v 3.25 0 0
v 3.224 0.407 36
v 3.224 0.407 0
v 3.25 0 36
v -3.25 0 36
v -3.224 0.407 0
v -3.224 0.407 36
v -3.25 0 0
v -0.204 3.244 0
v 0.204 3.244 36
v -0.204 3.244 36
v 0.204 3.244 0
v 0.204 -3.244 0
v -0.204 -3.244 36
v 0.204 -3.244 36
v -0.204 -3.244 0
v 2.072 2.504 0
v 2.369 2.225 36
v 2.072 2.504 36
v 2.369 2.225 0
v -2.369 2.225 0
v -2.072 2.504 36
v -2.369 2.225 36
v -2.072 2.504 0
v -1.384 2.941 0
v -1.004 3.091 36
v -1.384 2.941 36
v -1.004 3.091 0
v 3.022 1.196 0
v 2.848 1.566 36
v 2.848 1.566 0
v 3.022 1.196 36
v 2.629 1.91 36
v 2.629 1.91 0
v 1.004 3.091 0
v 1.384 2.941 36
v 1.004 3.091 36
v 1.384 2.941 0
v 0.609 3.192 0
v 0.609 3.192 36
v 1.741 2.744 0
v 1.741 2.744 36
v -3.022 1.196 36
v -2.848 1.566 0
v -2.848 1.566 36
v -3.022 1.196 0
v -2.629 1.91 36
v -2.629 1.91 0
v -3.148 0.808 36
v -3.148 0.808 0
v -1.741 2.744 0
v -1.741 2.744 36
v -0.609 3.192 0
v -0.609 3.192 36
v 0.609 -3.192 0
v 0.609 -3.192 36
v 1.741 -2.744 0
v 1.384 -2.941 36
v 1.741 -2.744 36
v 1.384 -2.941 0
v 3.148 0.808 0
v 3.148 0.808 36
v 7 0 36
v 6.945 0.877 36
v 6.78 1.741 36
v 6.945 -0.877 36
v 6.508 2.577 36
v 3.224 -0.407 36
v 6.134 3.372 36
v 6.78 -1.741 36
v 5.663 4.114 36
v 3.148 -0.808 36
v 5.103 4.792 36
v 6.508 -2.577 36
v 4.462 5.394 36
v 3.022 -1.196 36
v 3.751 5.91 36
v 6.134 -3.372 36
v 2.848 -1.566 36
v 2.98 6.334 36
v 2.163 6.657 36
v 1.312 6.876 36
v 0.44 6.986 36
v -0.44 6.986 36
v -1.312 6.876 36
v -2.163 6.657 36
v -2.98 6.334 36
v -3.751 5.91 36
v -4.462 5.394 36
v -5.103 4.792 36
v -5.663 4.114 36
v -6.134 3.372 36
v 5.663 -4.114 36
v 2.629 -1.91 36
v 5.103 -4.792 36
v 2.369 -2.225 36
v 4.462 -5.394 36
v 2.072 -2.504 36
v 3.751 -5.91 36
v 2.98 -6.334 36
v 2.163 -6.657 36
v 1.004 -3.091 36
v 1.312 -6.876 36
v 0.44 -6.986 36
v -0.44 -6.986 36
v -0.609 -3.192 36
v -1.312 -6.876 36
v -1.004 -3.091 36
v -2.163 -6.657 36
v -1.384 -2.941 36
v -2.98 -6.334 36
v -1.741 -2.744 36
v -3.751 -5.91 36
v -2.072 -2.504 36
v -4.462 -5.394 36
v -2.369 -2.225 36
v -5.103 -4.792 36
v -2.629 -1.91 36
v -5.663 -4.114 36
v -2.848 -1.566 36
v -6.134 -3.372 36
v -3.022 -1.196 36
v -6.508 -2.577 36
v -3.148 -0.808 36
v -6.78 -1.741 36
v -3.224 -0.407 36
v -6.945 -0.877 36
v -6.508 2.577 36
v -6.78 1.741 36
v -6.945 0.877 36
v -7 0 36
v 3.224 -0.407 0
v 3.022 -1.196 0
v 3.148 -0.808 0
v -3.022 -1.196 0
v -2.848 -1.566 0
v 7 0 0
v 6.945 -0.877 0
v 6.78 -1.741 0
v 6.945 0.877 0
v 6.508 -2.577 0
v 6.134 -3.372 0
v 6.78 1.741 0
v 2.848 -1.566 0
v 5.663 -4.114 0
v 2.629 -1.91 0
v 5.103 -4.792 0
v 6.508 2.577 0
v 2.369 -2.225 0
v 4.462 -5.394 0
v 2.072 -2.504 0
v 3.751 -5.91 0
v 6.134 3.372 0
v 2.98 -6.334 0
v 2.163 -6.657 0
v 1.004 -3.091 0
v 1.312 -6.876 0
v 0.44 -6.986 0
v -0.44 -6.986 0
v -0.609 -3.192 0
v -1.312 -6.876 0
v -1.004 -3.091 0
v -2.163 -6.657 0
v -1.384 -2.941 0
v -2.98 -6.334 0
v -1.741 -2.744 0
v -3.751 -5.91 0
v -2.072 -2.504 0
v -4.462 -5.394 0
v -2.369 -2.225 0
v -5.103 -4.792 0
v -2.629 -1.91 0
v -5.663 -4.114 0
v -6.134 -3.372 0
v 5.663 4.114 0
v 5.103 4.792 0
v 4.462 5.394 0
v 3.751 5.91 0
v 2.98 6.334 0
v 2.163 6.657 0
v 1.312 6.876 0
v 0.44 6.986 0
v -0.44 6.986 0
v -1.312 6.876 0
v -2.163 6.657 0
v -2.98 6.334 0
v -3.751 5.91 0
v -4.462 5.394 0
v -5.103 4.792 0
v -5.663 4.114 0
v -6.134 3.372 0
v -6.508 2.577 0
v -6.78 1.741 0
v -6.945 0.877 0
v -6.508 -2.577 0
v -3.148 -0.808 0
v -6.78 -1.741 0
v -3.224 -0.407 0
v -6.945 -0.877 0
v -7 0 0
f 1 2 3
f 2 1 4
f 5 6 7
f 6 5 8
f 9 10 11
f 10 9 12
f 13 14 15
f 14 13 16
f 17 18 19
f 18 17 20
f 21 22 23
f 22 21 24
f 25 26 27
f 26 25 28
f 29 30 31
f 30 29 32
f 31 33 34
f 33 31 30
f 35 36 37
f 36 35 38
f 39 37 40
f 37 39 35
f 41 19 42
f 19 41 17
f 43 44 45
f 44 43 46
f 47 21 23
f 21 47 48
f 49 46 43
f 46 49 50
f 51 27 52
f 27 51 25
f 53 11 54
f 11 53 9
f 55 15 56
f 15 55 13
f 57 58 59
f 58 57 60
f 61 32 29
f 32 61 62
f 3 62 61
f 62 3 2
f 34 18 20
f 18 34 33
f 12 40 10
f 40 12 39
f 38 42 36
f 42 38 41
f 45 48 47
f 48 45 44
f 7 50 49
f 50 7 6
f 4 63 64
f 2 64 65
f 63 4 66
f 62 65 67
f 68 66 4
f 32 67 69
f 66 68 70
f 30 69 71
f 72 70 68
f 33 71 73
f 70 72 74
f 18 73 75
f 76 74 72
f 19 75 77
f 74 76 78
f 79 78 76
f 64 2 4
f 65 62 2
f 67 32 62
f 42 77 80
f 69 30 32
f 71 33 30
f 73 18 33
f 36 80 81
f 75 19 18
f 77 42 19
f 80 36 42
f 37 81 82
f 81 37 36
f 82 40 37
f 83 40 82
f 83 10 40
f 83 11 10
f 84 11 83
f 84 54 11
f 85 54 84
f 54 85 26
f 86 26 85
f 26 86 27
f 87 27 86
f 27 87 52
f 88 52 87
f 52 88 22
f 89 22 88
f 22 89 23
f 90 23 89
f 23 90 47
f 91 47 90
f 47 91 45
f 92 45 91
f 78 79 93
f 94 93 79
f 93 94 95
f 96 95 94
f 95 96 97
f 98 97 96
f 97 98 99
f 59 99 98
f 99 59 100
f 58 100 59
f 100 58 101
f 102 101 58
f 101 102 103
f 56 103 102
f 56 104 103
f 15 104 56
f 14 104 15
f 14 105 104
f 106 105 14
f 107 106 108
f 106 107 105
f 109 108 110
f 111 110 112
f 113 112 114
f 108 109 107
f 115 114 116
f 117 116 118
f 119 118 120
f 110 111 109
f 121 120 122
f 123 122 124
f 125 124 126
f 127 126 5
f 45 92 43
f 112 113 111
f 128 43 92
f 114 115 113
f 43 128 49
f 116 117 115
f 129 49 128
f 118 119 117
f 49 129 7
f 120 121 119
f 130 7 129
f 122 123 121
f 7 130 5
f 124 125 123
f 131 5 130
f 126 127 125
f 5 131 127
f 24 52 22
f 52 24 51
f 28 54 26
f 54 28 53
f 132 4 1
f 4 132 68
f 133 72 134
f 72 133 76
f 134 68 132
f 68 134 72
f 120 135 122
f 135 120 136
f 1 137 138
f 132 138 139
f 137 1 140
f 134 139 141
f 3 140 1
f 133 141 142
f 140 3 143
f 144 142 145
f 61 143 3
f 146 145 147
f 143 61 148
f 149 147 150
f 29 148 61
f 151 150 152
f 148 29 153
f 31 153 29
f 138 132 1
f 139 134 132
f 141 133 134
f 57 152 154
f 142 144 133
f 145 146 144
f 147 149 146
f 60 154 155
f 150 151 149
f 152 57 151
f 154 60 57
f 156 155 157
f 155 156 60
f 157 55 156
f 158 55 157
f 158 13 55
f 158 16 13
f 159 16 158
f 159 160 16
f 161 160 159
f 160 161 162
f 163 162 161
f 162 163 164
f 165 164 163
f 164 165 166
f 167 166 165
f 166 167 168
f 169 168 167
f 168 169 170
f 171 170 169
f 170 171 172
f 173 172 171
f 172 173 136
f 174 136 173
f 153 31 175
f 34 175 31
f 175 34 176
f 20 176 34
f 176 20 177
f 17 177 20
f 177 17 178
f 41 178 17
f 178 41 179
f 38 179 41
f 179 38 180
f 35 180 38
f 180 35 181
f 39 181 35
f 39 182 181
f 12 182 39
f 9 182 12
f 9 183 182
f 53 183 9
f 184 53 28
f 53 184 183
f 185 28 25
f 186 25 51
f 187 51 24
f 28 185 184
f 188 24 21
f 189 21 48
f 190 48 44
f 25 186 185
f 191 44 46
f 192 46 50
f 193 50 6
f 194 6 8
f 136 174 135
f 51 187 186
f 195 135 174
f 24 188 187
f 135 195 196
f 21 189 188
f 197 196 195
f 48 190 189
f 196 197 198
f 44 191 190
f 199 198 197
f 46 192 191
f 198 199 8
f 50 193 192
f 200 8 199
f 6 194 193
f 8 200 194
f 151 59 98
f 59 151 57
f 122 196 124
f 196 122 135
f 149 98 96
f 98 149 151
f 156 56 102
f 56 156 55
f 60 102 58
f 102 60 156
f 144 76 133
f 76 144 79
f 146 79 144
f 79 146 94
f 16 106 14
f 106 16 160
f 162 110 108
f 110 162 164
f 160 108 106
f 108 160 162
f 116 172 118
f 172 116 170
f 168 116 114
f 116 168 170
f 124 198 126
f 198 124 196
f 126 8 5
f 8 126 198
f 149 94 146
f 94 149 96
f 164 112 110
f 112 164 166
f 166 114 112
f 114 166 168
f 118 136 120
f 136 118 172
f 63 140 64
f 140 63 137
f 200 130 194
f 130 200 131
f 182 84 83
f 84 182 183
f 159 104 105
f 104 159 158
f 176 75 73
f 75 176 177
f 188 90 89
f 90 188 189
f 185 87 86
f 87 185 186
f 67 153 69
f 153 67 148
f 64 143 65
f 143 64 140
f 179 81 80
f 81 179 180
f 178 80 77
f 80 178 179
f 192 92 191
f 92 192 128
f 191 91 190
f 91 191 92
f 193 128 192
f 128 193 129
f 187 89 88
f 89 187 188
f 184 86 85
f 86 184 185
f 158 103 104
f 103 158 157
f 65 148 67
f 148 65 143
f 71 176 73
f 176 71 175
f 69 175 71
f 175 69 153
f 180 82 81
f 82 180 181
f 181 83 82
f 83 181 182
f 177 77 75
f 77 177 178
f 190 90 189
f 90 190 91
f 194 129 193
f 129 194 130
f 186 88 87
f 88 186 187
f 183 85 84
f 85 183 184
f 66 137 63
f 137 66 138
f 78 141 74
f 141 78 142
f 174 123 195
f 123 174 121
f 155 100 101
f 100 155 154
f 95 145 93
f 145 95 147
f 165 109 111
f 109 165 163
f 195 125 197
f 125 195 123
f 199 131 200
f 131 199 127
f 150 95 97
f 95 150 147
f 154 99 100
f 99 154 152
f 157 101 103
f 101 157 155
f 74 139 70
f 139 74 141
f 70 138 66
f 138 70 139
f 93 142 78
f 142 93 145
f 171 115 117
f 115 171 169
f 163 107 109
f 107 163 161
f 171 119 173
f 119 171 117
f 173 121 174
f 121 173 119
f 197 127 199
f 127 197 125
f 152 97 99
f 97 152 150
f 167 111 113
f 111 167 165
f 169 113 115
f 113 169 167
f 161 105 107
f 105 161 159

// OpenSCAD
$fn = 50;


difference() {
	union() {
		cylinder(h = 36, r = 7.0000000000);
	}
	union() {
		cylinder(h = 36, r = 3.2500000000);
		cylinder(h = 36, r = 1.8000000000);
		cylinder(h = 36, r = 1.8000000000);
		cylinder(h = 36, r = 1.8000000000);
	}
}
